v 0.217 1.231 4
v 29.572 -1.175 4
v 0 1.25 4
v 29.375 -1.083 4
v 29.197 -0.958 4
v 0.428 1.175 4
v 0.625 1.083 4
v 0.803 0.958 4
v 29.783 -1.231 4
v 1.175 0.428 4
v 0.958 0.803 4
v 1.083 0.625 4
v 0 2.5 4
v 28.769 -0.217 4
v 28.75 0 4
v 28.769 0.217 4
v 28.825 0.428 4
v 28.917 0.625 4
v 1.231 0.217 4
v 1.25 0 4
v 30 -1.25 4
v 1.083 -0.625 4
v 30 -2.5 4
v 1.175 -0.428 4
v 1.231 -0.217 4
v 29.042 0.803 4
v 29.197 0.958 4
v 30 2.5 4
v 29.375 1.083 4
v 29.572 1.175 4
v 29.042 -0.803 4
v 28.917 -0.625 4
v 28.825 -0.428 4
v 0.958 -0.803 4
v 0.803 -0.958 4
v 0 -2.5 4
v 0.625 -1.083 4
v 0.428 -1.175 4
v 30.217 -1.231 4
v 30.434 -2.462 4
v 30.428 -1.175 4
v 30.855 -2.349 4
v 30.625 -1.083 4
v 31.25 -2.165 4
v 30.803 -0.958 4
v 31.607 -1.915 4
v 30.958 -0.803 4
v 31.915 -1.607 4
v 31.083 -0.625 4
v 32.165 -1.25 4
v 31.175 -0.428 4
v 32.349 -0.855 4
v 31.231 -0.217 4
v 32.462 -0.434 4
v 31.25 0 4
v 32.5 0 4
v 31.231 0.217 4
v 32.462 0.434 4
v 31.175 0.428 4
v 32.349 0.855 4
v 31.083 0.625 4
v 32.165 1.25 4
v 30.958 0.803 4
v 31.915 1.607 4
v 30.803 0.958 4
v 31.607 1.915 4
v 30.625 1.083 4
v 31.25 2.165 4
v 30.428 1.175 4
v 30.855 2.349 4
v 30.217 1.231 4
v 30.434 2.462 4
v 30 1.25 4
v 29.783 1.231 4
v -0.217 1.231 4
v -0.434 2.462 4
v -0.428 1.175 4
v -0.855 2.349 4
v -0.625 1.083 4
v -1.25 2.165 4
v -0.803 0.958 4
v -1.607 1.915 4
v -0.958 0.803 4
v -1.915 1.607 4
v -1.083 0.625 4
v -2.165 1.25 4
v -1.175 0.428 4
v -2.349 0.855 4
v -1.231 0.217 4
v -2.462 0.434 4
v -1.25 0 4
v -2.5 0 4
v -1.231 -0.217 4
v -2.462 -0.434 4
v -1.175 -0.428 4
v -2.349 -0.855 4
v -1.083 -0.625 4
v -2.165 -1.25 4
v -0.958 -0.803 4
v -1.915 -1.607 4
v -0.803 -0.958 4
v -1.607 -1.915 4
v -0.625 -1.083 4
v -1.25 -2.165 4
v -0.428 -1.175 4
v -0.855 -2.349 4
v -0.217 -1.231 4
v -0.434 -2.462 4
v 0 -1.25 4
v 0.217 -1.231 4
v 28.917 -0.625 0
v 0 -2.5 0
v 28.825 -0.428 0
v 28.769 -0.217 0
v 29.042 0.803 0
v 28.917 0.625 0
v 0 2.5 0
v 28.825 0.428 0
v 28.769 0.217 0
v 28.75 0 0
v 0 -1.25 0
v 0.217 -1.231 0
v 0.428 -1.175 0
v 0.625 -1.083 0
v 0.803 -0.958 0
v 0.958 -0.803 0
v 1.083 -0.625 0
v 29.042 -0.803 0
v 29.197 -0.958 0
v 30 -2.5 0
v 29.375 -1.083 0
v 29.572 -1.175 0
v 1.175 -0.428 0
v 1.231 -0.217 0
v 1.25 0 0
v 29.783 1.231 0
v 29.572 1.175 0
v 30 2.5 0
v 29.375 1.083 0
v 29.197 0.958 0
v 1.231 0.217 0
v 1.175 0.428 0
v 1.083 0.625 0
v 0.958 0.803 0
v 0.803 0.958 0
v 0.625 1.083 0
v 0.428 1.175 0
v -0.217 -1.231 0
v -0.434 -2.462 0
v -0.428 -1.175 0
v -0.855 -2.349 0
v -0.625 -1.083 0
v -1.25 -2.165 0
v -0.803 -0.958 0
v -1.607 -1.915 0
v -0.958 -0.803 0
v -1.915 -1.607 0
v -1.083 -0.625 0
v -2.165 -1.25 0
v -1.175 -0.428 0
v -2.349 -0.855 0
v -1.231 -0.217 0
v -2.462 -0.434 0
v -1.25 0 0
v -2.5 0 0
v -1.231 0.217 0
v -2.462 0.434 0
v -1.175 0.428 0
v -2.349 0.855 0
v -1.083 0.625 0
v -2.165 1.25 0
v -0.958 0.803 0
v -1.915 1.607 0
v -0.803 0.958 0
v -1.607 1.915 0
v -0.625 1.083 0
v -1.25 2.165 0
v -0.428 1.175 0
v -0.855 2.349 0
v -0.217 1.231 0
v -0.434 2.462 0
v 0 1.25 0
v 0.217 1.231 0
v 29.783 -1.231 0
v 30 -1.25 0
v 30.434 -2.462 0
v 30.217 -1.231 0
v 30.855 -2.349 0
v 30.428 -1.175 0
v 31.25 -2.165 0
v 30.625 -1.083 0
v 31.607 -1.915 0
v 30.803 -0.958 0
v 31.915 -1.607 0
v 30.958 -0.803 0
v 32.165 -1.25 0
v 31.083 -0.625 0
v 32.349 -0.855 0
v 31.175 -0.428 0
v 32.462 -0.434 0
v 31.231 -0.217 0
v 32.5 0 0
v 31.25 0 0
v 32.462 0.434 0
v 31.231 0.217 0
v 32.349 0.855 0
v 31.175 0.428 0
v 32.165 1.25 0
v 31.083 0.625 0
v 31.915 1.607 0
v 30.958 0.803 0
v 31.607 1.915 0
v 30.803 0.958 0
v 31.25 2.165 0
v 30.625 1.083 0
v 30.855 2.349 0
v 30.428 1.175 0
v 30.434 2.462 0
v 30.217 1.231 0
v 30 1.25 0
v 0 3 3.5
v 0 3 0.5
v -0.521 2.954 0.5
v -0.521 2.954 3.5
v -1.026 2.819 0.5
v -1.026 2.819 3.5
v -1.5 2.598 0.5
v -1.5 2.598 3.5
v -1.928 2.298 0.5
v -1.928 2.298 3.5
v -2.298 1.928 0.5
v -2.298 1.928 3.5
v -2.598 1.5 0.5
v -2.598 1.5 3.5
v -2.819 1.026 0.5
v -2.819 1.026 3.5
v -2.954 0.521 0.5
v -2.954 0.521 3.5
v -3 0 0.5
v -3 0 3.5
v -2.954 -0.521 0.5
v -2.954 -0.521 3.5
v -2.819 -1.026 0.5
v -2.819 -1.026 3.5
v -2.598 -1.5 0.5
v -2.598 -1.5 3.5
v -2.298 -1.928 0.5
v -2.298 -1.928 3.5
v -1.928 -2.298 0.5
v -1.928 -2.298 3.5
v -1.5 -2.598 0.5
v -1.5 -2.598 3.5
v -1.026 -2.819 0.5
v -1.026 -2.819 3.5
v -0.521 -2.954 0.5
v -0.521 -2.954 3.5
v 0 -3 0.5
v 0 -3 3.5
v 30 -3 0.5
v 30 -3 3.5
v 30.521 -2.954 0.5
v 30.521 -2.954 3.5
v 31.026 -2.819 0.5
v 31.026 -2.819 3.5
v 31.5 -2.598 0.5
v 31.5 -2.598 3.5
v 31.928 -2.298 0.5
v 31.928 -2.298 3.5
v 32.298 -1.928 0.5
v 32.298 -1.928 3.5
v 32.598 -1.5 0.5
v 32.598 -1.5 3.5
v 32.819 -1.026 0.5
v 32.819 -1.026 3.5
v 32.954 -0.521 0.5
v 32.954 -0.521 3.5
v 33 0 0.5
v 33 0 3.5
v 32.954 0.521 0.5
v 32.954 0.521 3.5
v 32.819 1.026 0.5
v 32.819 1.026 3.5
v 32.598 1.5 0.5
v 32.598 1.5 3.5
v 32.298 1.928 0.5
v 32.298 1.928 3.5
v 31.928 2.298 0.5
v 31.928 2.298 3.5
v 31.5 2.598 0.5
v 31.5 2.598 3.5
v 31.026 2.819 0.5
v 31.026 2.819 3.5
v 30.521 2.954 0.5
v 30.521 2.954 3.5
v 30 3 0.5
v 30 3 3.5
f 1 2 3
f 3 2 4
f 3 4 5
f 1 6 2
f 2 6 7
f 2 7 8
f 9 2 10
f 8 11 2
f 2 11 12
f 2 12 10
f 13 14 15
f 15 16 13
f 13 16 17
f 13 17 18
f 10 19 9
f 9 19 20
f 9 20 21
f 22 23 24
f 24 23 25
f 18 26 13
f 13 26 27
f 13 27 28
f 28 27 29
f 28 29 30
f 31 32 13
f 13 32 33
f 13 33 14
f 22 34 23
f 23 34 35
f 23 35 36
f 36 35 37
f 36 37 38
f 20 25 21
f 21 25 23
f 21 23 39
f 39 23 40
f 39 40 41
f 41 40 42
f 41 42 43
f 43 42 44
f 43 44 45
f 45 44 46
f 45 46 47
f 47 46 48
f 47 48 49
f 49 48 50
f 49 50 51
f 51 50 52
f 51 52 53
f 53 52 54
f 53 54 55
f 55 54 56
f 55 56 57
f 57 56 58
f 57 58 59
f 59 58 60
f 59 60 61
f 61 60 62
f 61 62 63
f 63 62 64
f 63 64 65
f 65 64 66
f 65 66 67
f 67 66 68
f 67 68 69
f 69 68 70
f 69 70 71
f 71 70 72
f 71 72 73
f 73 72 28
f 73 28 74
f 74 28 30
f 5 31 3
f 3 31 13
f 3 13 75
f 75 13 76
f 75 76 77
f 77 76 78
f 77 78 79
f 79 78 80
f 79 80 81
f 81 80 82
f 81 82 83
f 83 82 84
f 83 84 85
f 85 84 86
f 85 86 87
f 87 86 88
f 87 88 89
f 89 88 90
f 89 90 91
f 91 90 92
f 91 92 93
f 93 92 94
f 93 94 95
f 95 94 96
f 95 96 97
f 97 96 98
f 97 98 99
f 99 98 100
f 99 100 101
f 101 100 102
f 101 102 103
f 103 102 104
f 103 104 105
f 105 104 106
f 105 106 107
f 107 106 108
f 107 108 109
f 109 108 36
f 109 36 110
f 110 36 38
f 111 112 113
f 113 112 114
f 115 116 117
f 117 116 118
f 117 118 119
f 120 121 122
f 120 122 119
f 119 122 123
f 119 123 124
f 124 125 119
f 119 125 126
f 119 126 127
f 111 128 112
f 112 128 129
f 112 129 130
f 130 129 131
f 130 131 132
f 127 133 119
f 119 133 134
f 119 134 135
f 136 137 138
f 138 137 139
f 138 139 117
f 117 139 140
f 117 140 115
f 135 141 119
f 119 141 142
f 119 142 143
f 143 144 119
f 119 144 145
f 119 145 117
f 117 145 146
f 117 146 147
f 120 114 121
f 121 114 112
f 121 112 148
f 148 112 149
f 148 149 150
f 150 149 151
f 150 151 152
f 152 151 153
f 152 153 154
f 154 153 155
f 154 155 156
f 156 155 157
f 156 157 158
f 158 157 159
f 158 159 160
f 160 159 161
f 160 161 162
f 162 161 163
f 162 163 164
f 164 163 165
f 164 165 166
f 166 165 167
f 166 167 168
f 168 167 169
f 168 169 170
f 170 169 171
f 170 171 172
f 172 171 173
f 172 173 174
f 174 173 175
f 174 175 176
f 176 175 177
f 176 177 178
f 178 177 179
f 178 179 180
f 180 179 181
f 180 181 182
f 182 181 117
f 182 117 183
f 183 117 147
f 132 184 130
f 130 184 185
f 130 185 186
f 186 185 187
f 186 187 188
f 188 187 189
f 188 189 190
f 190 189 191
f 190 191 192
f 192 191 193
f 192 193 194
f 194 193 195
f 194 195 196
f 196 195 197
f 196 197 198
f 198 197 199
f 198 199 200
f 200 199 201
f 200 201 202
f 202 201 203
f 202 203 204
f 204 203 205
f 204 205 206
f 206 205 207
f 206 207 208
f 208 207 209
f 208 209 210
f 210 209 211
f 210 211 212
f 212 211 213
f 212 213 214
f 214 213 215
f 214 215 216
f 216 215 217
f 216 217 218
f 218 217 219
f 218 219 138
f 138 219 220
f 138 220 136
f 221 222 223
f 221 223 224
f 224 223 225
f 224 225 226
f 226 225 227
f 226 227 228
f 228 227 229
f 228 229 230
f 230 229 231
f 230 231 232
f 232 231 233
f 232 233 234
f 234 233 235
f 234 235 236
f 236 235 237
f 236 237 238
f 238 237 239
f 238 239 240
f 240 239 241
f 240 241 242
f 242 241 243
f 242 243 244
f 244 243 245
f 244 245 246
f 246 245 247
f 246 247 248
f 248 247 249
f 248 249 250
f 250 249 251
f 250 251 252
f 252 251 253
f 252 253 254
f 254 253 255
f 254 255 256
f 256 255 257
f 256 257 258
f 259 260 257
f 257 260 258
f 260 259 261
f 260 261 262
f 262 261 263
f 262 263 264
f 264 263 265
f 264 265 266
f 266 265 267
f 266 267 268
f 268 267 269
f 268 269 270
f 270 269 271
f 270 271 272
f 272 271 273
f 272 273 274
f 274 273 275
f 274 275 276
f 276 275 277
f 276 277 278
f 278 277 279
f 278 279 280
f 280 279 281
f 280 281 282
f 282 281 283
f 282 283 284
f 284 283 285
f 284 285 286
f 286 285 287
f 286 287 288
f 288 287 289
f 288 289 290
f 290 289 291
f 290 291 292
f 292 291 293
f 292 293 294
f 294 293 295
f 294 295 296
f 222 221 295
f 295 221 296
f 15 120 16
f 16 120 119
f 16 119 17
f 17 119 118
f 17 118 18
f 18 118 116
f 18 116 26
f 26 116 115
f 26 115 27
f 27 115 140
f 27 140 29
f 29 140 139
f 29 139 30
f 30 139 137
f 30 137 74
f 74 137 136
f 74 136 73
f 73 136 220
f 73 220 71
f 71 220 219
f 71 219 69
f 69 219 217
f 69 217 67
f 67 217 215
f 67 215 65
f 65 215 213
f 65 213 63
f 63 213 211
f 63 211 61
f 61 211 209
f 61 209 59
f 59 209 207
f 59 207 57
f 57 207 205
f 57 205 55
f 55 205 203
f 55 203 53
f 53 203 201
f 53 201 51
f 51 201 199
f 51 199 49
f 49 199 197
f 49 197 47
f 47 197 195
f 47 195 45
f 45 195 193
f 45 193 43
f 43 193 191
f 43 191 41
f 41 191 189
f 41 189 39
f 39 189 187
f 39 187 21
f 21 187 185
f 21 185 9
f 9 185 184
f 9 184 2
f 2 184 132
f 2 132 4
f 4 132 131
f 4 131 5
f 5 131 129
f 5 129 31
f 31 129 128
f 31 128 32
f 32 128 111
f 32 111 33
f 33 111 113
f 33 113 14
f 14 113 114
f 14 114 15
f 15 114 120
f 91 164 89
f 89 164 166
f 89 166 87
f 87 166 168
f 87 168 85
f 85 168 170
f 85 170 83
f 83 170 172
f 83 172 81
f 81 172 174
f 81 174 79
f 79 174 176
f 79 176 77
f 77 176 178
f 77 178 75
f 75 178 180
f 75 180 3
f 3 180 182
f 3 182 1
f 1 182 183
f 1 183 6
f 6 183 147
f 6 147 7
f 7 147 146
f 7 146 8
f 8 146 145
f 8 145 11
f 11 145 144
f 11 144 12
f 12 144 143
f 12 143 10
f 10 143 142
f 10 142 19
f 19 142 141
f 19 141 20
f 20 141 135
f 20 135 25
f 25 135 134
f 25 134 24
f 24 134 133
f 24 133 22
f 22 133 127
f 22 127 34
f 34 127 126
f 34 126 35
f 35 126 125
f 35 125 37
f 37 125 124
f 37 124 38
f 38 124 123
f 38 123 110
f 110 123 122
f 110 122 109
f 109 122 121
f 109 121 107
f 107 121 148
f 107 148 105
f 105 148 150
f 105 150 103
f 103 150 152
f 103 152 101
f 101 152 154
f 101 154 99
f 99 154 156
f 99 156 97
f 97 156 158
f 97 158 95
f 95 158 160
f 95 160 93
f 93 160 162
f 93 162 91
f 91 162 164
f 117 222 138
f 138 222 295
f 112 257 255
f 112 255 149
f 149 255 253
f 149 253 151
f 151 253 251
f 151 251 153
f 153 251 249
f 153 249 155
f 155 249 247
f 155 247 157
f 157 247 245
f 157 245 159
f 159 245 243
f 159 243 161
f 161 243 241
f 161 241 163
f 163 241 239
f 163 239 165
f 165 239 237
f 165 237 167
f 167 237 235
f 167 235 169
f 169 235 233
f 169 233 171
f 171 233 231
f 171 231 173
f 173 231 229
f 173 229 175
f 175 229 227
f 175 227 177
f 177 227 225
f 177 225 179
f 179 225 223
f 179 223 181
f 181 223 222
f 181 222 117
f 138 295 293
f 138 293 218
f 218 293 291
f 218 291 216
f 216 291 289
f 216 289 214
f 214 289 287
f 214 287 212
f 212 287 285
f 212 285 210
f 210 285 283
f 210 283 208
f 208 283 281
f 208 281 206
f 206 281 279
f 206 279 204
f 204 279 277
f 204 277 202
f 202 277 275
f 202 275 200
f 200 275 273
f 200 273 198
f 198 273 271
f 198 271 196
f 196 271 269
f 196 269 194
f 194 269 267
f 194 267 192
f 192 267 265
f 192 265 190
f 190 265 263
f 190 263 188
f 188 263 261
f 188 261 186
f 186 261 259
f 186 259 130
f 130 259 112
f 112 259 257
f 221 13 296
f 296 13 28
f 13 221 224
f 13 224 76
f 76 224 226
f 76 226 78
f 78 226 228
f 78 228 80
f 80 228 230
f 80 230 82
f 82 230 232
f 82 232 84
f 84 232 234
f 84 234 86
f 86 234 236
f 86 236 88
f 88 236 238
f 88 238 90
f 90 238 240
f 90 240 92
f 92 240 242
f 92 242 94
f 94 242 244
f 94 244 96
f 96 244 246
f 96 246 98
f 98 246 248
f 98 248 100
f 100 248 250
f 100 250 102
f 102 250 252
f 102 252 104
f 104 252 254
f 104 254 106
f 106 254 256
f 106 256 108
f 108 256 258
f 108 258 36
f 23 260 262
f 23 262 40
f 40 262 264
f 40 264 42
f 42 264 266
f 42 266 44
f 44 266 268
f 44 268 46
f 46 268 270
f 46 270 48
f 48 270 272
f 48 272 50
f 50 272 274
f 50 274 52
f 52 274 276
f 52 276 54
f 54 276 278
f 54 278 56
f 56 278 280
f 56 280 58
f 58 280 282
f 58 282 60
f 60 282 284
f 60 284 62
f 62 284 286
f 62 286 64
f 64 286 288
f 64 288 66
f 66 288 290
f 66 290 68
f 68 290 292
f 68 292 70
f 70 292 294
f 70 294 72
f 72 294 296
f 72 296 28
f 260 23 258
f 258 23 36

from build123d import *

# Parameters (mm, degrees)
CROQUIS1_R              = 1.25
SALIENTE_EXTRUIR1_DEPTH = 4
CHAFL_N1_SIZE           = 0.5


with BuildPart() as part:
    # Croquis1 → Saliente-Extruir1 (new body)
    with BuildSketch(Plane.XY):
        with BuildLine():
            Line((0, 3), (30, 3))
            ThreePointArc((30, 3), (33, 0), (30, -3))
            Line((30, -3), (0, -3))
            ThreePointArc((0, -3), (-3, 0), (0, 3))
        make_face()
        with Locations((30, 0)):
            Circle(CROQUIS1_R, mode=Mode.SUBTRACT)
        Circle(CROQUIS1_R, mode=Mode.SUBTRACT)
    extrude(amount=SALIENTE_EXTRUIR1_DEPTH)

    # Chaflán1
    chafl_n1_edges = [part.edges().sort_by_distance(p)[0] for p in [
        (33, 0, 4),
        (15, 3, 4),
        (-3, 0, 4),
        (15, 3, 0),
        (33, 0, 0),
        (15, -3, 0),
        (-3, 0, 0),
        (15, -3, 4),
    ]]
    chamfer(chafl_n1_edges, length=CHAFL_N1_SIZE)


solid = part.part
